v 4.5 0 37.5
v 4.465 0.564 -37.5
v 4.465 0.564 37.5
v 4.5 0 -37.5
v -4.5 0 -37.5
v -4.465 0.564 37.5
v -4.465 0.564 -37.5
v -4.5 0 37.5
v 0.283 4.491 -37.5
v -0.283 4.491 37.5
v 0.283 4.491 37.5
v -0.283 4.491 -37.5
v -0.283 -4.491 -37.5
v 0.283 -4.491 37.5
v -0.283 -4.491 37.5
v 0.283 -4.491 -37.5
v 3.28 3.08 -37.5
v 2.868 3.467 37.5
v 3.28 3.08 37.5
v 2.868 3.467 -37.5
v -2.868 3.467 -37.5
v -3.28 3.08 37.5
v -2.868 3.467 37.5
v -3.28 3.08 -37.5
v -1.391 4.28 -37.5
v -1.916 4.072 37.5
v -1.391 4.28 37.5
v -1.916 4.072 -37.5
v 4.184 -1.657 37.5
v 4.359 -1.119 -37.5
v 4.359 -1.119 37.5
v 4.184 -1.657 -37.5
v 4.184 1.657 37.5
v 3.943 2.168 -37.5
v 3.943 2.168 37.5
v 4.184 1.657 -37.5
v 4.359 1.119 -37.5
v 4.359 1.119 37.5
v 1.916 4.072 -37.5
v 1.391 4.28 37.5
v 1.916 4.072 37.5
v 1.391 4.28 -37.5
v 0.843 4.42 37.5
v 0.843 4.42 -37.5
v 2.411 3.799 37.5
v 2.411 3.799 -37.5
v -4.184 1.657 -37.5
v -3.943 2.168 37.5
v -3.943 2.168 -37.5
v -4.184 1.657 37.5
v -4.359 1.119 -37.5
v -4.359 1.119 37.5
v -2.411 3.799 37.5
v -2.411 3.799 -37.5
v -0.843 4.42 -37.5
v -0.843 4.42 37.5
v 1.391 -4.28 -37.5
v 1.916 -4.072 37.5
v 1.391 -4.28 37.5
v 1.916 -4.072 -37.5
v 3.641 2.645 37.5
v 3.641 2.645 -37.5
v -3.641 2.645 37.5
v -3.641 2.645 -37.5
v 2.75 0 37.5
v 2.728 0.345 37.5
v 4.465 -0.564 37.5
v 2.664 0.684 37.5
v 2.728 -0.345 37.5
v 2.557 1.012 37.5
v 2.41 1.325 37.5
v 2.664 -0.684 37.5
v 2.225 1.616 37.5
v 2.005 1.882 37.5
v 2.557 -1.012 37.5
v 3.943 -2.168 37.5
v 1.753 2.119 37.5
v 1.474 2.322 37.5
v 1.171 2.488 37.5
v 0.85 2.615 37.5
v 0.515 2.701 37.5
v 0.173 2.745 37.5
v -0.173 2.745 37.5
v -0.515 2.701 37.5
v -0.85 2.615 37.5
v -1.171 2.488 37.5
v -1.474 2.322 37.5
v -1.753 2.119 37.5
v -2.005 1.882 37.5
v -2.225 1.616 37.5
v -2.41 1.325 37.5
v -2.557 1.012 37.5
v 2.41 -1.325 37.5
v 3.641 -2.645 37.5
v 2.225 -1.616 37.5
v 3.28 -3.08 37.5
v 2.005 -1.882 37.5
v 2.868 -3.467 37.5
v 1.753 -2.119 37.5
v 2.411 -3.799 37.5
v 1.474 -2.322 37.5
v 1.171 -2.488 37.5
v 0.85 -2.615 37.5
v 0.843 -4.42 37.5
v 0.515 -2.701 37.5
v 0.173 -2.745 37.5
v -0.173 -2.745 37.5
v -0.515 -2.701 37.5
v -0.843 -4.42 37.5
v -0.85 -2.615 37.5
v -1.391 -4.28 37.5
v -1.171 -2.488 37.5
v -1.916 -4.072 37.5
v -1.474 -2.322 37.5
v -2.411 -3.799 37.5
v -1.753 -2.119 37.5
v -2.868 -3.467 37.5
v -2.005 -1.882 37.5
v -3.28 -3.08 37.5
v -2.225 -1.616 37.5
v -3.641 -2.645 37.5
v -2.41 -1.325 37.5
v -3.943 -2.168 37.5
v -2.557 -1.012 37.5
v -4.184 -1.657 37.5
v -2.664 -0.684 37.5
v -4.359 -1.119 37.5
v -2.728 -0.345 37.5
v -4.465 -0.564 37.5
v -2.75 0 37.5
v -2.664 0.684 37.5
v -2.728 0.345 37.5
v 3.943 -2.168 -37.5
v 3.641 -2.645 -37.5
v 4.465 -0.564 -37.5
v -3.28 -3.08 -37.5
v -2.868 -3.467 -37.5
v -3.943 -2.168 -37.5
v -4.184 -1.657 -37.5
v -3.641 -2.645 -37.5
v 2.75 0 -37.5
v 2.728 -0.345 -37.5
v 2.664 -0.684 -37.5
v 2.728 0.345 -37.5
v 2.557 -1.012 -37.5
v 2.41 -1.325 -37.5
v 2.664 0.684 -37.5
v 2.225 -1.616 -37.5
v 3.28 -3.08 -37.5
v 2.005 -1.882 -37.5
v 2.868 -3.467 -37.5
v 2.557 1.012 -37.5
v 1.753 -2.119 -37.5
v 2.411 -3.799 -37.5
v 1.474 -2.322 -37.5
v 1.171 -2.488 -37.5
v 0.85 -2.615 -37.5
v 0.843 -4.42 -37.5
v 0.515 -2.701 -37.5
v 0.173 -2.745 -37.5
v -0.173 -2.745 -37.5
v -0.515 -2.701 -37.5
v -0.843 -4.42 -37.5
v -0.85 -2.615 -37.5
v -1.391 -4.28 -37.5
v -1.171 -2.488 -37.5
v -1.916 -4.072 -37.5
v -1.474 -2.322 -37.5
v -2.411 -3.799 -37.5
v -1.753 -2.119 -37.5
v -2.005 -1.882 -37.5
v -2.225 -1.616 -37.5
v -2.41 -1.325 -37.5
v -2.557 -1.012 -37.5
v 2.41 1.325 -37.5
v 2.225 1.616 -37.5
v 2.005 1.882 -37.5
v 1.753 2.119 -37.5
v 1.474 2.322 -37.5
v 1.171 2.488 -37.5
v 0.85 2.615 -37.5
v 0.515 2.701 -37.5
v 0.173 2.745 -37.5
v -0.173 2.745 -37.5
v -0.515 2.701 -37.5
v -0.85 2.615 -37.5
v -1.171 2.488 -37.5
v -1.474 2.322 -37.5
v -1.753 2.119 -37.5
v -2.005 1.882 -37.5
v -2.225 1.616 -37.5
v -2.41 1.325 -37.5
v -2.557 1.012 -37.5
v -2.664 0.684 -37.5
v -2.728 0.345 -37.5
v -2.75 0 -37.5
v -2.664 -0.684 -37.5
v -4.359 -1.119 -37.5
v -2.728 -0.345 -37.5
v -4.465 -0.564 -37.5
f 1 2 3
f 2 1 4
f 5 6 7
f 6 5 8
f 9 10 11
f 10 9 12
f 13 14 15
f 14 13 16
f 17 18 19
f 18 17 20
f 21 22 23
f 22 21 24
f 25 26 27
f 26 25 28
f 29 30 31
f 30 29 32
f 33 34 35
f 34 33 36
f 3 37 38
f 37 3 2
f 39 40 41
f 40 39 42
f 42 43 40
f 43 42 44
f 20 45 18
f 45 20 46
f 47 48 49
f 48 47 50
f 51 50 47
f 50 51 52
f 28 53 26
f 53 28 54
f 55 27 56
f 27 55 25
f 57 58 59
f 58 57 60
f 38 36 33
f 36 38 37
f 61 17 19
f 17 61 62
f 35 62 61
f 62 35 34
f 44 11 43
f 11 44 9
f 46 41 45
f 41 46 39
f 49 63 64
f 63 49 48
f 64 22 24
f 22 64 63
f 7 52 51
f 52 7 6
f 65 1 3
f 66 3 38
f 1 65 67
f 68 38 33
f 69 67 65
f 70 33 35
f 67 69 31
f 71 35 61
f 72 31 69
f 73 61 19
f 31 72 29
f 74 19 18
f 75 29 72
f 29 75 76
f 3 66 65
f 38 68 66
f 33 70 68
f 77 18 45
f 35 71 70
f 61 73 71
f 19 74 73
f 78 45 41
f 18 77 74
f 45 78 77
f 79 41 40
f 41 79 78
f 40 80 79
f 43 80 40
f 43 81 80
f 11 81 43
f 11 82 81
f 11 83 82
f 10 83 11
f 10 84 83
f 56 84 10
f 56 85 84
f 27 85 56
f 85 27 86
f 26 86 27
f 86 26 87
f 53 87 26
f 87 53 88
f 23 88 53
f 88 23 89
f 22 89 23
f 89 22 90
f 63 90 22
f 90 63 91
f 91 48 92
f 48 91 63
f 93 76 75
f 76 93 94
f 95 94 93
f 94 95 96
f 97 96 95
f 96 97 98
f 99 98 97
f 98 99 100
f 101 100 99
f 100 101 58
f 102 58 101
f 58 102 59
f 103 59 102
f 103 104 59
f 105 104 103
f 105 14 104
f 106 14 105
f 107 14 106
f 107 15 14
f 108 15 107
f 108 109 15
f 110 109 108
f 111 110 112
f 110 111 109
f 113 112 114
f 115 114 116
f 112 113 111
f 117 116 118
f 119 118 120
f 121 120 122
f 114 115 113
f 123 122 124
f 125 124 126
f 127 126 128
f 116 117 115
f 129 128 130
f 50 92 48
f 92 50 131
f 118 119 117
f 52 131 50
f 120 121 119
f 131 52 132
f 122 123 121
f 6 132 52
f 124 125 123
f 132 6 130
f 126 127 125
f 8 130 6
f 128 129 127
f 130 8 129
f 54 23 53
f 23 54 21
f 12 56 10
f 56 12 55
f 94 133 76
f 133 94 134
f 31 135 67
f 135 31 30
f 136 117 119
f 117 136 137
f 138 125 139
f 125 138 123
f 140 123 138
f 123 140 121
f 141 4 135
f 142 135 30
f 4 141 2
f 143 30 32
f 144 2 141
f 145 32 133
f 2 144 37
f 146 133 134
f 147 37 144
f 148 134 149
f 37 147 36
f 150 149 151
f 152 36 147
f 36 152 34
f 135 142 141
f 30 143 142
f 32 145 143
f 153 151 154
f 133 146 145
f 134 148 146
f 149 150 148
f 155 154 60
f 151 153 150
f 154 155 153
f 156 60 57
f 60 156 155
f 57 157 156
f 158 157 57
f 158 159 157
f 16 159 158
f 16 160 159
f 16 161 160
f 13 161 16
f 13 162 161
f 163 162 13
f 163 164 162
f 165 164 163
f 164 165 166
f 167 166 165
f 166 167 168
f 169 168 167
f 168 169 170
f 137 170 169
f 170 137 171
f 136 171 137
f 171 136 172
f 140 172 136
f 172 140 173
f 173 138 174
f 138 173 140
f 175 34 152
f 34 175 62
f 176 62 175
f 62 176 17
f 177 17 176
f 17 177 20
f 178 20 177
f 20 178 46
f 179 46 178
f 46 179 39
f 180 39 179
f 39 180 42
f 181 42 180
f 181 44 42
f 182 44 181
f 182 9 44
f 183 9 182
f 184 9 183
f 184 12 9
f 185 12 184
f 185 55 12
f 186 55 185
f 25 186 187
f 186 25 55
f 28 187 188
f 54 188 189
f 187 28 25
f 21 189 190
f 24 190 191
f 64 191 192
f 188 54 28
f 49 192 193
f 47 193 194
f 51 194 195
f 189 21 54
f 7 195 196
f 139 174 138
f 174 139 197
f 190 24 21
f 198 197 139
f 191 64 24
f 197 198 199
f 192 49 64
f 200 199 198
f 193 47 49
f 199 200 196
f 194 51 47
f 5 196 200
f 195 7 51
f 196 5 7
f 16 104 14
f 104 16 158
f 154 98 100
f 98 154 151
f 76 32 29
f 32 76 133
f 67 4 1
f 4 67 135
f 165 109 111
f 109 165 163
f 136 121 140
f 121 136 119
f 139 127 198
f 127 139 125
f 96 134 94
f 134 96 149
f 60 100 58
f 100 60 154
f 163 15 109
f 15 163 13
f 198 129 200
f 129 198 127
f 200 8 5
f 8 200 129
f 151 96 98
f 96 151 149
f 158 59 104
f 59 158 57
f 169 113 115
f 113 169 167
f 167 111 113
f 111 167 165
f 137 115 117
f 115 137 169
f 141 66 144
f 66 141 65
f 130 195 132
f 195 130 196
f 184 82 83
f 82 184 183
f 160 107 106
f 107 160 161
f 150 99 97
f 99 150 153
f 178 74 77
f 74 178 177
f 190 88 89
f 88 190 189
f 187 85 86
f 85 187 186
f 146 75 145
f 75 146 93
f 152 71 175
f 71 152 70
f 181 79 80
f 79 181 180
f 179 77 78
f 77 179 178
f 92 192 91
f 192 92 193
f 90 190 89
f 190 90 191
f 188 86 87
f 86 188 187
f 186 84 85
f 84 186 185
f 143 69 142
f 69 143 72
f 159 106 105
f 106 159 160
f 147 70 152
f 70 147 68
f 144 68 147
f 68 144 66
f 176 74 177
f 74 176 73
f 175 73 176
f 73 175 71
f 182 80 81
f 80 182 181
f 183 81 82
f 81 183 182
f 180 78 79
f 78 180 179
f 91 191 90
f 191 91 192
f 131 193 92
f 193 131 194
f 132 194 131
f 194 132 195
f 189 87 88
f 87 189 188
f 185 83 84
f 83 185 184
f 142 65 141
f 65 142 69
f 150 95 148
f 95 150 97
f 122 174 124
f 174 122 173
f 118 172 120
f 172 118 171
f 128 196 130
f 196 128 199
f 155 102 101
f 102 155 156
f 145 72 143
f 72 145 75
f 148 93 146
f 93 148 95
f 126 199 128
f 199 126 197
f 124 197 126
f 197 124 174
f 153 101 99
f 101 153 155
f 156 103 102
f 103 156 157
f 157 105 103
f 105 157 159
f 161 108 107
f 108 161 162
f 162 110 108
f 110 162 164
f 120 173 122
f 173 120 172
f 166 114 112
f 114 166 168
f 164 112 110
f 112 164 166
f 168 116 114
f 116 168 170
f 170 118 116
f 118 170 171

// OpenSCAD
$fn = 50;


difference() {
	union() {
		translate(v = [0, 0, -37.5000000000]) {
			cylinder(h = 75, r = 4.5000000000);
		}
	}
	union() {
		translate(v = [0, 0, -100.0000000000]) {
			cylinder(h = 200, r = 2.7500000000);
		}
	}
}
